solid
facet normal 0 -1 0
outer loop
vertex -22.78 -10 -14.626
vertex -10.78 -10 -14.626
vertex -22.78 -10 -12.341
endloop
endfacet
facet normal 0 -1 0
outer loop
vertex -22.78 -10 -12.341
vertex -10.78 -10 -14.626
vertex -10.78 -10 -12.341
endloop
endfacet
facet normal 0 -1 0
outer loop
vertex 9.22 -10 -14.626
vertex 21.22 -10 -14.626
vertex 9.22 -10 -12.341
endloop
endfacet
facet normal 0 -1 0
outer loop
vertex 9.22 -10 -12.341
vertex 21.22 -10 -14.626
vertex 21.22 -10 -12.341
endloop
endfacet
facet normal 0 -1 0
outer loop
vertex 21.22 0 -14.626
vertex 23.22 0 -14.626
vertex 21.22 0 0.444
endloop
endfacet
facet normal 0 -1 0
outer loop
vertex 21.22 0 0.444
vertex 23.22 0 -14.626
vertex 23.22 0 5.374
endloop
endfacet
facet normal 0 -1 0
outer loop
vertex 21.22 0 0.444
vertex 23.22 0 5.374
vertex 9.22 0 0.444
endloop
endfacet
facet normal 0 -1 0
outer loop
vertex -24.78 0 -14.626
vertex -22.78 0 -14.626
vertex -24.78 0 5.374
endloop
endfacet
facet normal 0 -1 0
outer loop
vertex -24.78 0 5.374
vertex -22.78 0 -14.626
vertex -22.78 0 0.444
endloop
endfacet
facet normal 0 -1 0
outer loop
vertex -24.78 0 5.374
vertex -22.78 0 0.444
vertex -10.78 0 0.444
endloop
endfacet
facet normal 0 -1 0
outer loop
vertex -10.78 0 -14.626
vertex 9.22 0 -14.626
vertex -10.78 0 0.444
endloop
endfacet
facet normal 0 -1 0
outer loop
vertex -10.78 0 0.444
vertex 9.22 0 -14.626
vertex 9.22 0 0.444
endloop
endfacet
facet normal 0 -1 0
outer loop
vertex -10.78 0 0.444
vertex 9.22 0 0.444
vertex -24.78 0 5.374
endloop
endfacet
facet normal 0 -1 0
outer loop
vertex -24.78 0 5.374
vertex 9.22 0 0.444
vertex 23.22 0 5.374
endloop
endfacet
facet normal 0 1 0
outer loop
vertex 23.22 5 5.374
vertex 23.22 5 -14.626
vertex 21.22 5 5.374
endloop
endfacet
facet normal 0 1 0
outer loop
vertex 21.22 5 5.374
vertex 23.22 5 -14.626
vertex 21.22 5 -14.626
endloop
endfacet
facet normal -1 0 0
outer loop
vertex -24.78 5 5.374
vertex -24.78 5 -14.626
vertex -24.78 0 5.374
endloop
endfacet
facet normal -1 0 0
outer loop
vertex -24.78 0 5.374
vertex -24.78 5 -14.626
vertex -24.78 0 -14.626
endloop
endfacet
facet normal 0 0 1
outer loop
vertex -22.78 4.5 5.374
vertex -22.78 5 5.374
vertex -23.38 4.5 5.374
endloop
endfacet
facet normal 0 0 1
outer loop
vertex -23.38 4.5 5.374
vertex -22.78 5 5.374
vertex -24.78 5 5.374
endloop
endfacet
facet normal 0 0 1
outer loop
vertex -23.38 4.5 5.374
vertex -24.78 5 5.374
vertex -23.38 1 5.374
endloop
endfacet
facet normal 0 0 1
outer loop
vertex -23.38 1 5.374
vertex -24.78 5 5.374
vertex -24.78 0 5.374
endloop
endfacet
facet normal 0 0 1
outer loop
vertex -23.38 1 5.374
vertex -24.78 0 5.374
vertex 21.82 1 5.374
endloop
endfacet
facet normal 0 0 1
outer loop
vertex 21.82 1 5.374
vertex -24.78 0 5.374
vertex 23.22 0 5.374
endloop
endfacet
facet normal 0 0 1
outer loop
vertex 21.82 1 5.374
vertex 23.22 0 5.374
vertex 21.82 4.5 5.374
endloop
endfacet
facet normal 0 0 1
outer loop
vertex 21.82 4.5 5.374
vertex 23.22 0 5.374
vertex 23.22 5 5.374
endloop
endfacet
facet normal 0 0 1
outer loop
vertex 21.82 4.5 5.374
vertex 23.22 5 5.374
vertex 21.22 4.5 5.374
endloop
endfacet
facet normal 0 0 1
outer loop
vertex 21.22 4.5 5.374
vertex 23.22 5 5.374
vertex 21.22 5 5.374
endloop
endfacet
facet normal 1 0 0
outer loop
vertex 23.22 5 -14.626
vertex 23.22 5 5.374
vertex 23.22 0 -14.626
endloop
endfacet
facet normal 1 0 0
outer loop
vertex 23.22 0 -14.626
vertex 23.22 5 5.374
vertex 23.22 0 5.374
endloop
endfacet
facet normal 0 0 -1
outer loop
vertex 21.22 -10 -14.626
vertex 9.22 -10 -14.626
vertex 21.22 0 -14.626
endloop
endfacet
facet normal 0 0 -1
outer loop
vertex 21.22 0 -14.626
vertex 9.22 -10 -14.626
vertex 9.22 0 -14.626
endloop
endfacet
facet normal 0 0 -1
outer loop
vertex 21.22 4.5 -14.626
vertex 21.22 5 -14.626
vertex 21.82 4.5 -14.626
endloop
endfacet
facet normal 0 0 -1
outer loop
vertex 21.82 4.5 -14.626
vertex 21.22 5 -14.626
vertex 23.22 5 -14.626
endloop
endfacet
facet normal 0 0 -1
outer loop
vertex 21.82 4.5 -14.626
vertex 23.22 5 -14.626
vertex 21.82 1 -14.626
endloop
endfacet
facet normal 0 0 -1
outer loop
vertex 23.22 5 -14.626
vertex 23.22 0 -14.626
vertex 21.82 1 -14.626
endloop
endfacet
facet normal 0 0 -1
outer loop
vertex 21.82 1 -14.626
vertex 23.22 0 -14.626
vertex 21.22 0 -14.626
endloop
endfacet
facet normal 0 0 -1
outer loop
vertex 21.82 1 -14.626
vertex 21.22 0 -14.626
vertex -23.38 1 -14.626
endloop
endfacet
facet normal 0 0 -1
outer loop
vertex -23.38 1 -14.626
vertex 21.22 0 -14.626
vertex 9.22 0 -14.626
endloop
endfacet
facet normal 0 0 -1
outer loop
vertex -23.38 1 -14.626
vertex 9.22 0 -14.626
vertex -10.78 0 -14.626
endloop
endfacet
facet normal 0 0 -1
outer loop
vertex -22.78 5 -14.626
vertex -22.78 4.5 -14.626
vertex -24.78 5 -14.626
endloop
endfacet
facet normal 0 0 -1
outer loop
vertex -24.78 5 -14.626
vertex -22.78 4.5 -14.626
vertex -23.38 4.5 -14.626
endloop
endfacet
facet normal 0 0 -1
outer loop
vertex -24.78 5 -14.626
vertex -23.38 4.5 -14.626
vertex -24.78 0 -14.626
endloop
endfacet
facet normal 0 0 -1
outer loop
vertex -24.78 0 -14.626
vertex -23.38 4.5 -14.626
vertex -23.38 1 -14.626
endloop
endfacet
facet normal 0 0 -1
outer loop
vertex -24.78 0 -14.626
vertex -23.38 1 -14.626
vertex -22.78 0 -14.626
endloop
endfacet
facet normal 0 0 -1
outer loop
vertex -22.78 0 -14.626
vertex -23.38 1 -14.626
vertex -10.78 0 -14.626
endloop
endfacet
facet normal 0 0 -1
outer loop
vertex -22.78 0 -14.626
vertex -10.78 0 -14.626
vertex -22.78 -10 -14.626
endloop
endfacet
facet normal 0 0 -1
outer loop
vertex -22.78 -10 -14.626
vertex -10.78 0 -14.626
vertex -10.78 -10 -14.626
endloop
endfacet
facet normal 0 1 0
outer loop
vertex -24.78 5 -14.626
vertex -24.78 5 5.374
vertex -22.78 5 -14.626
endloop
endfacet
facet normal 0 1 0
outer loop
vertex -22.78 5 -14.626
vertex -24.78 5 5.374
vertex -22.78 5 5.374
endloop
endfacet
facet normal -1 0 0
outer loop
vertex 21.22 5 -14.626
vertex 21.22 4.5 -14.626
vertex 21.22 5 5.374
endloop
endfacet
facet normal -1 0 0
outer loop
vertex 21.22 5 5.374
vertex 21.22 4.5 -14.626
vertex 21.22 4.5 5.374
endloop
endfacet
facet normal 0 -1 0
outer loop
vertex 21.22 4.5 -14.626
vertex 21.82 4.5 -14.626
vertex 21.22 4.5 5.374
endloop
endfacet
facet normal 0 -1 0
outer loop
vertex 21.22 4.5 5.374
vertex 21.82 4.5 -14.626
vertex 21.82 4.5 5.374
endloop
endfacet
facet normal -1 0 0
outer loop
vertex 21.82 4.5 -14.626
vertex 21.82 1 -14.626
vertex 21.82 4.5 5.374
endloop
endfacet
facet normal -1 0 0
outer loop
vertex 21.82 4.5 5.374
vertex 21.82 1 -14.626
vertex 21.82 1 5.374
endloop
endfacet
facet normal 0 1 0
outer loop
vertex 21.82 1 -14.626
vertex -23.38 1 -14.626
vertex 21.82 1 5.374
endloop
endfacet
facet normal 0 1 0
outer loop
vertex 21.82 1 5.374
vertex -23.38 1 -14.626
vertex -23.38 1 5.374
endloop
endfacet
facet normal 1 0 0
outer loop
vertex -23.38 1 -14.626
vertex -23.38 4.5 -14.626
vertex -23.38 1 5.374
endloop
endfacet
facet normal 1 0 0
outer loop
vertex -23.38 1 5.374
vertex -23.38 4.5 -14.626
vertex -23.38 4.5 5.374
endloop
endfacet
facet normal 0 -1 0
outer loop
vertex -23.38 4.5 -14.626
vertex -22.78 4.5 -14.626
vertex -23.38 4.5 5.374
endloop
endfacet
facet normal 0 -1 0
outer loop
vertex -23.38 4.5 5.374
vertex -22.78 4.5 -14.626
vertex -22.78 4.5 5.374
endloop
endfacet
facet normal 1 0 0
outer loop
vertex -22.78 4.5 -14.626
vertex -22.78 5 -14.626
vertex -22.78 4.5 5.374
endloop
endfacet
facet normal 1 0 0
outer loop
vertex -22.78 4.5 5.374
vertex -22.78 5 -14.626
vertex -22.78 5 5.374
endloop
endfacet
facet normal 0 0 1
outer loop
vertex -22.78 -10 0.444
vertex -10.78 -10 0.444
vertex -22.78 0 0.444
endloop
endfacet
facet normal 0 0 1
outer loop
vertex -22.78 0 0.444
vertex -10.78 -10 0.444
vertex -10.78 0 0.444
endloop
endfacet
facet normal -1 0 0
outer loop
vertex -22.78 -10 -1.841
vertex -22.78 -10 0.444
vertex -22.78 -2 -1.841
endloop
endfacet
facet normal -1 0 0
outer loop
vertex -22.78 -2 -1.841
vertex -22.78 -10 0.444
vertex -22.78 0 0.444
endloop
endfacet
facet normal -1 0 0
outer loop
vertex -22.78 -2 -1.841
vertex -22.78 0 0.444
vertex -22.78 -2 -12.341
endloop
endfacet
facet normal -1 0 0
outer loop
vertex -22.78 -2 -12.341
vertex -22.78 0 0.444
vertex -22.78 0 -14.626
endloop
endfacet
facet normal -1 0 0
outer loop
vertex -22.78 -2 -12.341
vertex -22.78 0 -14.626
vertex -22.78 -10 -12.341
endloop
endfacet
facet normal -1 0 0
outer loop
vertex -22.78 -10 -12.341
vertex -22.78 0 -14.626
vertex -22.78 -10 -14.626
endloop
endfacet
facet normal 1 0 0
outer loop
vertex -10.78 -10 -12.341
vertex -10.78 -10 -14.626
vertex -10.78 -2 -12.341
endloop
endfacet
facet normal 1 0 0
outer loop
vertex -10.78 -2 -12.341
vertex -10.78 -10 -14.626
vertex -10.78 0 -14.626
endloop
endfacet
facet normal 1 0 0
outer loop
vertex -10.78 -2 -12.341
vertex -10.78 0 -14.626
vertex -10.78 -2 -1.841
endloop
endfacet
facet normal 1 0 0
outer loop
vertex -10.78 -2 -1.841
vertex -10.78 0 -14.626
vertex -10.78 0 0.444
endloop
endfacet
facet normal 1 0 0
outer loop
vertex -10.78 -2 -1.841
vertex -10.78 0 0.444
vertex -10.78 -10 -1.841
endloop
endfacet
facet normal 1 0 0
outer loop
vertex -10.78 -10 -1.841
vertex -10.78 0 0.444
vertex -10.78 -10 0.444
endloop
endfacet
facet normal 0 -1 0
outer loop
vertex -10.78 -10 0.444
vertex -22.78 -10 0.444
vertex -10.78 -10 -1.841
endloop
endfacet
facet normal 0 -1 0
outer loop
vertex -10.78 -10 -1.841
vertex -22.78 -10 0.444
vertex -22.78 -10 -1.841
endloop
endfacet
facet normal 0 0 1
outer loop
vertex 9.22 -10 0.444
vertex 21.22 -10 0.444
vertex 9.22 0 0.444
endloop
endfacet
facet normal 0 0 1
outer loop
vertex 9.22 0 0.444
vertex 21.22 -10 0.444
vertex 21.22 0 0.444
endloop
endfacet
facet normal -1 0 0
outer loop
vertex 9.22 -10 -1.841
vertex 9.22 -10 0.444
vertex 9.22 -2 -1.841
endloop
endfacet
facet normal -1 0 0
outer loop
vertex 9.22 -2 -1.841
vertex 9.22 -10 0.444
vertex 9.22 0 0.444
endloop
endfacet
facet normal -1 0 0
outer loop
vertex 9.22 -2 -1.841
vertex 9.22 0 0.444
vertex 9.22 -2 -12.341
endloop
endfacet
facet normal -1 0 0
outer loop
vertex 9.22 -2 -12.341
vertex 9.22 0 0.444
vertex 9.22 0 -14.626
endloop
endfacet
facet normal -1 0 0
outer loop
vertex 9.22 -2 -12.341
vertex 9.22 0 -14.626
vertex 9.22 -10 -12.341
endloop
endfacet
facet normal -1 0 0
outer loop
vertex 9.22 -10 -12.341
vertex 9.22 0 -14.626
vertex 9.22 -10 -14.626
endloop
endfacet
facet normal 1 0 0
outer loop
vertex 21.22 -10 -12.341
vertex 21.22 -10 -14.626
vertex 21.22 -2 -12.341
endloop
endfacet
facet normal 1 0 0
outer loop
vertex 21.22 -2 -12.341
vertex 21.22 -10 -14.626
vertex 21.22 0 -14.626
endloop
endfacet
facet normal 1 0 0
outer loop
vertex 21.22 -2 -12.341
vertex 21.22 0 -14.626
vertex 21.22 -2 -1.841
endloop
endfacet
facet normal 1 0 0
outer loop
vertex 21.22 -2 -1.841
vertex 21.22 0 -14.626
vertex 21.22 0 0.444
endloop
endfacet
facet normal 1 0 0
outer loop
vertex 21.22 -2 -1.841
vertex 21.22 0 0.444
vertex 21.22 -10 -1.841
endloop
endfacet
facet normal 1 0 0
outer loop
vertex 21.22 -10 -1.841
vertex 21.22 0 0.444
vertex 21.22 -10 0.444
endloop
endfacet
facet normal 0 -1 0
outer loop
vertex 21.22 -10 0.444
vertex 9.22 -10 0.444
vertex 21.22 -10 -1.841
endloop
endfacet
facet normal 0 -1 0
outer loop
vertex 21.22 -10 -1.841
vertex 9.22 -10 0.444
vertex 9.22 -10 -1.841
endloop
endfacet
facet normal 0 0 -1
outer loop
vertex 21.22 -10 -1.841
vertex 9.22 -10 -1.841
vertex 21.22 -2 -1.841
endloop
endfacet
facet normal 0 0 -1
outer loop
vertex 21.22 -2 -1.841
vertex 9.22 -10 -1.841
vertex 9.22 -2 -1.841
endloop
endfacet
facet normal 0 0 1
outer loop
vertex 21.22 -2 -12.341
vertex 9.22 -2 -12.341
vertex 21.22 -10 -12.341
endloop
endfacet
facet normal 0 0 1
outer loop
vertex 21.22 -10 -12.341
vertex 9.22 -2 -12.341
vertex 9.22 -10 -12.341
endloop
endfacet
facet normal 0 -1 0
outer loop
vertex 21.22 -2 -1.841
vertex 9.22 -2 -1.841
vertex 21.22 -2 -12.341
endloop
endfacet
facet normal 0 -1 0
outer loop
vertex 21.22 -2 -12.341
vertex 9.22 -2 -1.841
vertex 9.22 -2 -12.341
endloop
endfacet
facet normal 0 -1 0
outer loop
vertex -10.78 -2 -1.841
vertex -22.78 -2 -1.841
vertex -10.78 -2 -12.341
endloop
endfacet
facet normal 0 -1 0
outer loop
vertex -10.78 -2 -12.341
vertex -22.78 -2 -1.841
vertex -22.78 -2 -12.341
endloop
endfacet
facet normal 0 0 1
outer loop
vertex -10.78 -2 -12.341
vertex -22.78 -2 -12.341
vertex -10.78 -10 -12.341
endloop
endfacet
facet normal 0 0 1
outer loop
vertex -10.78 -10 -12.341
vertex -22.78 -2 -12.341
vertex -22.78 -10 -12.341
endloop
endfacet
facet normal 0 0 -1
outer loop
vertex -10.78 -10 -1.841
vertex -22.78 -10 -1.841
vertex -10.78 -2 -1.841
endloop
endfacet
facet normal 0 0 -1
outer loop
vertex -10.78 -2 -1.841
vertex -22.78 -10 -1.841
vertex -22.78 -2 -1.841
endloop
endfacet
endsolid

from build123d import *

# Parameters (mm, degrees)
SKETCH_1_W          = 48
SKETCH_1_H          = 20
EXTRUDE_1_DEPTH     = 5
CUT_EXTRUDE_1_DEPTH = 33.234273685
SKETCH_3_W          = 12
SKETCH_3_H          = 15.07
EXTRUDE_2_DEPTH     = 10
SKETCH_4_W          = 10.5
SKETCH_4_H          = 8
CUT_EXTRUDE_2_DEPTH = 50.294132697


with BuildPart() as part:
    # 草图1 → 凸台-拉伸1 (new body)
    with BuildSketch(Plane(origin=(0, 0, 0), x_dir=(1, 0, 0), z_dir=(0, 1, 0))):
        with Locations((-0.78, 4.625714286)):
            Rectangle(SKETCH_1_W, SKETCH_1_H)
    extrude(amount=EXTRUDE_1_DEPTH)

    # 草图2 → 切除-拉伸1 (cut, through all)
    with BuildSketch(Plane.XY.offset(5.374285714)):
        Polygon((-22.78, 5), (-22.78, 4.5), (-23.38, 4.5), (-23.38, 1), (21.82, 1), (21.82, 4.5), (21.22, 4.5), (21.22, 5), align=None)
    extrude(amount=-CUT_EXTRUDE_1_DEPTH, mode=Mode.SUBTRACT)

    # 草图3 → 凸台-拉伸2 (add)
    with BuildSketch(Plane.XZ):
        with Locations((-16.78, -7.090714286)):
            Rectangle(SKETCH_3_W, SKETCH_3_H)
        with Locations((15.22, -7.090714286)):
            Rectangle(SKETCH_3_W, SKETCH_3_H)
    extrude(amount=EXTRUDE_2_DEPTH)

    # 草图4 → 切除-拉伸2 (cut, through all)
    with BuildSketch(Plane(origin=(21.22, 0, 0), x_dir=(0, 0, -1), z_dir=(1, 0, 0))):
        with Locations((7.090714286, -6)):
            Rectangle(SKETCH_4_W, SKETCH_4_H)
    extrude(amount=-CUT_EXTRUDE_2_DEPTH, mode=Mode.SUBTRACT)


solid = part.part
